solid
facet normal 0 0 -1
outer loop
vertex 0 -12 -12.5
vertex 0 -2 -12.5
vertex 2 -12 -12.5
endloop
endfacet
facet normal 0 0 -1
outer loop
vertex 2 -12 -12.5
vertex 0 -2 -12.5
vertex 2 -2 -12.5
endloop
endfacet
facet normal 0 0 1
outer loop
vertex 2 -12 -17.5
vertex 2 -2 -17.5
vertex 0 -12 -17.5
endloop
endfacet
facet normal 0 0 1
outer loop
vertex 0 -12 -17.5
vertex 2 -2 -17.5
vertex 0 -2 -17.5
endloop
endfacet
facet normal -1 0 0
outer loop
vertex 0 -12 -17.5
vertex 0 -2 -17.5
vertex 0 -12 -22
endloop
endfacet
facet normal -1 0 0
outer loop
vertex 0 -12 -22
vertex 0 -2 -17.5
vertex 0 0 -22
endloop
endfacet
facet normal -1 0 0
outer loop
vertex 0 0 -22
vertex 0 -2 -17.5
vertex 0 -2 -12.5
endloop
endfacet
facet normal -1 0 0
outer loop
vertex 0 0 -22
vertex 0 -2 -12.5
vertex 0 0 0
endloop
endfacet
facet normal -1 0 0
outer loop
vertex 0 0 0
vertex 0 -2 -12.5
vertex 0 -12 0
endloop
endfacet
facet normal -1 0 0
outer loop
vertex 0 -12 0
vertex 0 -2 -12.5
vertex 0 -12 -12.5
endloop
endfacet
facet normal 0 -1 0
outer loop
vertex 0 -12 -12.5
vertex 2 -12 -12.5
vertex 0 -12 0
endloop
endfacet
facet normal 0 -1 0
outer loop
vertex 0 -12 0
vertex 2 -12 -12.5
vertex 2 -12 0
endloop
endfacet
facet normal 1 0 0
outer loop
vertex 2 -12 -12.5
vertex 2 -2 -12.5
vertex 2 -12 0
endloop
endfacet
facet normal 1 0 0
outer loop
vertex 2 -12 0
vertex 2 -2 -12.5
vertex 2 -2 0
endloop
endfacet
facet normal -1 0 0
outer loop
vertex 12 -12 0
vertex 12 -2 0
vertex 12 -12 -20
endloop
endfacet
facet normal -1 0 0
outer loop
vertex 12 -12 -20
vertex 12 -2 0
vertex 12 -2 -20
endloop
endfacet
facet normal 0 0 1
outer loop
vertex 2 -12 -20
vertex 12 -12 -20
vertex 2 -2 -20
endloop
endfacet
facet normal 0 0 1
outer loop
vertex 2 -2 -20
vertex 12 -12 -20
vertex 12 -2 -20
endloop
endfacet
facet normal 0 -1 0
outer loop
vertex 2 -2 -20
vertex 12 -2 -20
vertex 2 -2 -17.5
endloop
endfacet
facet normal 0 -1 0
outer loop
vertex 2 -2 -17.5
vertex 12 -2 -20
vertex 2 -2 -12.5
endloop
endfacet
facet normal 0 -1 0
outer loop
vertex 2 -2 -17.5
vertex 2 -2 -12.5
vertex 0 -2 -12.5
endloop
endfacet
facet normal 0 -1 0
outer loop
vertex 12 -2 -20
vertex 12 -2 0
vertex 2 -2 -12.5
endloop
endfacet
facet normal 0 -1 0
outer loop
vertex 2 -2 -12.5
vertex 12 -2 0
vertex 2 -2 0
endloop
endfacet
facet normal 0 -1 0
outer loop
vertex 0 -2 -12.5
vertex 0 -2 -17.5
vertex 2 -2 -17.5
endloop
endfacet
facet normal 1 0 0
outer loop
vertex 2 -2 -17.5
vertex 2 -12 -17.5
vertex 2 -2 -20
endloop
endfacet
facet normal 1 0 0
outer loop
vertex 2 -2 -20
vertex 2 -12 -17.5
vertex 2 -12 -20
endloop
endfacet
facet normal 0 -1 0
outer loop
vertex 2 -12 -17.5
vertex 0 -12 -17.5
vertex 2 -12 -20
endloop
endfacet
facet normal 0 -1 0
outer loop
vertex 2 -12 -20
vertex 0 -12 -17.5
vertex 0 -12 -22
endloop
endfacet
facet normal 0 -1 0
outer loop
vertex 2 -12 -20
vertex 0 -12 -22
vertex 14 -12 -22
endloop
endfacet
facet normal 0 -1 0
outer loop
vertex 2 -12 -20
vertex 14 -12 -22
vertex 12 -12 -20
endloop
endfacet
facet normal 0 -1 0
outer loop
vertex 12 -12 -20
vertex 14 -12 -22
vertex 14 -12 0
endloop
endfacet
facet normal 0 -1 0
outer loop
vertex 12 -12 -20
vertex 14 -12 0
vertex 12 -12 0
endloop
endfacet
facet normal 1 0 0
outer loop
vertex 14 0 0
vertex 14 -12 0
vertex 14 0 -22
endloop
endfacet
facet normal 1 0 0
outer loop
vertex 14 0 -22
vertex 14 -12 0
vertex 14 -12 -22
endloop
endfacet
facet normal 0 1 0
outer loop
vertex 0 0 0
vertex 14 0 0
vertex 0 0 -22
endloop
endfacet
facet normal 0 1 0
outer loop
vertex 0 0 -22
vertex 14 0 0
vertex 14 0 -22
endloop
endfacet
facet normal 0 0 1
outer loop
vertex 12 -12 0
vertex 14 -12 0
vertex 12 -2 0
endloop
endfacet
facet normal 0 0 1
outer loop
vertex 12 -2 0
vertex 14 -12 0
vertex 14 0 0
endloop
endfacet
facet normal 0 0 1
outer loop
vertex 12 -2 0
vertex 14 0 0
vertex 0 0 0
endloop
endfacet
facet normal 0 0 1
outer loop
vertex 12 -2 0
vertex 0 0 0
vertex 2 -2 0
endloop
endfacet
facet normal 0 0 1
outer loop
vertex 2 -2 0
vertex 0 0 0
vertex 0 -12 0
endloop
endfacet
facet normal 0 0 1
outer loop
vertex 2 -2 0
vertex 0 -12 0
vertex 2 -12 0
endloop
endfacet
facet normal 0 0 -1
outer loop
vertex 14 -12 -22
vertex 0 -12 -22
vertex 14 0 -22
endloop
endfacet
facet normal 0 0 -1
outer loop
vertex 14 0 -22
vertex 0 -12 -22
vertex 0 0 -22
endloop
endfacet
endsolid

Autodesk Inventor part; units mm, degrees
ref_plane "YZ Plane" through (0, 0, 0) normal (1, 0, 0) x (0, 1, 0)
ref_plane "XZ Plane" through (0, 0, 0) normal (0, 1, 0) x (-1, 0, 0)
ref_plane "XY Plane" through (0, 0, 0) normal (0, 0, 1) x (1, 0, 0)
sketch "Sketch1" plane through (0, 0, 0) normal (0, 0, 1) x (1, 0, 0)
  line L0 (0, 0) -> (14, 0)
  line L1 (14, 0) -> (14, -12)
  line L2 (14, -12) -> (0, -12)
  line L3 (0, -12) -> (0, 0)
  dimension "d0" = 14
  dimension "d1" = 12
extrude "Extrusion1" add sketch "Sketch1" against normal blind 22
sketch "Sketch2" plane through (0, 0, 0) normal (0, 0, 1) x (1, 0, 0)
  line L0 (2, -2) -> (12, -2)
  line L1 (12, -2) -> (12, -22)
  line L2 (12, -22) -> (2, -22)
  line L3 (2, -22) -> (2, -2)
  point P0 (0, 0)
  dimension "d4" = 10
  dimension "d5" = 20
extrude "Extrusion2" cut sketch "Sketch2" against normal blind 20
sketch "Sketch8" plane through (0, -12, 0) normal (-1, 0, 0) x (0, 0, 1)
  point P0 (0, 12)
sketch "Sketch9" plane through (0, -12, 0) normal (-1, 0, 0) x (0, 0, 1)
  point P0 (0, 12)
sketch "Sketch11" plane through (0, -12, 0) normal (-1, 0, 0) x (0, 0, 1)
  point P0 (0, 12)
sketch "Sketch13" plane through (0, -12, 0) normal (-1, 0, 0) x (0, 0, 1)
  line L0 (-12.5, 10) -> (-17.5, 10)
  line L1 (-17.5, 10) -> (-17.5, -0.477)
  line L2 (-17.5, -0.477) -> (-12.5, -0.477)
  line L3 (-12.5, -0.477) -> (-12.5, 10)
  point P0 (0, 12)
  dimension "d27" = 5
extrude "Extrusion9" cut sketch "Sketch13" against normal blind 10
properties part number "housing_v05"
